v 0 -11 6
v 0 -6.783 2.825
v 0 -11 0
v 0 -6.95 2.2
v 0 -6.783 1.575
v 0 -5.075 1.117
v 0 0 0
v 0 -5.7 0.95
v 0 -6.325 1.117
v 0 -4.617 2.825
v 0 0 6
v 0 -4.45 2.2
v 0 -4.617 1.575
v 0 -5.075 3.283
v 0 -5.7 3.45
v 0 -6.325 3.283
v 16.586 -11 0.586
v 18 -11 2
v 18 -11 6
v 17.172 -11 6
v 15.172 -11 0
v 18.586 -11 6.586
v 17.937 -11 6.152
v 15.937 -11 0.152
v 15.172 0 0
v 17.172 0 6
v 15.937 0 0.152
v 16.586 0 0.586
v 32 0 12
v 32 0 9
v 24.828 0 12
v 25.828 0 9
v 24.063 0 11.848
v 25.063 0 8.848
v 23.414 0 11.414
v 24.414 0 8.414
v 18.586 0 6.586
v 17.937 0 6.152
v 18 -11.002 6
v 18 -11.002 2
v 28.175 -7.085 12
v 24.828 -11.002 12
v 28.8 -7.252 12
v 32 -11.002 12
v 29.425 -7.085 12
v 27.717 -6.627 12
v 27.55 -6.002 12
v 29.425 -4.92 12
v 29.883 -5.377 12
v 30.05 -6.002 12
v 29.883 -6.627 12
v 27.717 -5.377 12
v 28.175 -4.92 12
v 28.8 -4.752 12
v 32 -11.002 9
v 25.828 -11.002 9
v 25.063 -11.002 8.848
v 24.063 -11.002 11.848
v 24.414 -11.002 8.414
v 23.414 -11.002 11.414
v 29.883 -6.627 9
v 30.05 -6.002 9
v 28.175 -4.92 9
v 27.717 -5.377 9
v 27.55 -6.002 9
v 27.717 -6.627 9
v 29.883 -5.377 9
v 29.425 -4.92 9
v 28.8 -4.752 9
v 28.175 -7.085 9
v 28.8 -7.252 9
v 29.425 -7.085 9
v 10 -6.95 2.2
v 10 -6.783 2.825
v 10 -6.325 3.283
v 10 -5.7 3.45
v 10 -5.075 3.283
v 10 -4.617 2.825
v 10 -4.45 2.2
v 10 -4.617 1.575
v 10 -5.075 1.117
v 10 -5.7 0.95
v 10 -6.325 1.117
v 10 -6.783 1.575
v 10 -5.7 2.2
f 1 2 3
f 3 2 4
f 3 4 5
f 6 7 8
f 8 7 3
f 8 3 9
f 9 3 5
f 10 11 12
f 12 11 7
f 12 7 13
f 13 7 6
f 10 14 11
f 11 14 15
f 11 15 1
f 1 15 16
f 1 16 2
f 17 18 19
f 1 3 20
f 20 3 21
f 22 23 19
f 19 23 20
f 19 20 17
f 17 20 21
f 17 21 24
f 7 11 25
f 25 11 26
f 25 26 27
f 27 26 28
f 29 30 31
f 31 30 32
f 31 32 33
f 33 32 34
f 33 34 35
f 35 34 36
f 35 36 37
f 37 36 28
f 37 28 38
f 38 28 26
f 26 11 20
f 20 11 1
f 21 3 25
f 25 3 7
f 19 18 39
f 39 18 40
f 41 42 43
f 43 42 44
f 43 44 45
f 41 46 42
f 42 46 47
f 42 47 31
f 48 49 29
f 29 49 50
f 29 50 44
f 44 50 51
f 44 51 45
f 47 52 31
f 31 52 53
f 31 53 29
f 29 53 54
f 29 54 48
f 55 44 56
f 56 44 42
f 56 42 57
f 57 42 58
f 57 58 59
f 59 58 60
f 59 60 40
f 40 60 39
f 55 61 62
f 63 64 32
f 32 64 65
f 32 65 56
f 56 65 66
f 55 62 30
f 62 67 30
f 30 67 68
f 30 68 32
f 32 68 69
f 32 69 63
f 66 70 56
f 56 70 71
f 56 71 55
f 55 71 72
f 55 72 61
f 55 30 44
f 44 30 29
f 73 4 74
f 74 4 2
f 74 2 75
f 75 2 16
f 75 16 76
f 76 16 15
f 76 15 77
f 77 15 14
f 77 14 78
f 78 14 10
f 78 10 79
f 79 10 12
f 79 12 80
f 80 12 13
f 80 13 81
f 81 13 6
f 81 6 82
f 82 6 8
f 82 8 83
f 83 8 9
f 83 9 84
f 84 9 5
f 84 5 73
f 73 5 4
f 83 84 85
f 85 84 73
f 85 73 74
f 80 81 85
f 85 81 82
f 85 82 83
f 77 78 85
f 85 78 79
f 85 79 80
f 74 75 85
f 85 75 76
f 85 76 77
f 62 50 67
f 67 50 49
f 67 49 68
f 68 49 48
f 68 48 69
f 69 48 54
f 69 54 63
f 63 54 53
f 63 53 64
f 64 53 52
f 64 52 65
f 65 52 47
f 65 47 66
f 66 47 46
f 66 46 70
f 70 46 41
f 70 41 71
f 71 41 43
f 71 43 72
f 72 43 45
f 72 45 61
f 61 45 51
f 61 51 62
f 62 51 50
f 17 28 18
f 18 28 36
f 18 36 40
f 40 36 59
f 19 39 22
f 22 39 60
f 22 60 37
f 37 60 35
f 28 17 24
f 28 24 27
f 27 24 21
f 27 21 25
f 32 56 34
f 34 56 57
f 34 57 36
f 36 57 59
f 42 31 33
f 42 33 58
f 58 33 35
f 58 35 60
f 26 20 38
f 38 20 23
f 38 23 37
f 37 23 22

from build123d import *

# Parameters (mm, degrees)
CROQUIS1_W              = 18
CROQUIS1_H              = 11
SALIENTE_EXTRUIR1_DEPTH = 6
CROQUIS3_W              = 12
CROQUIS3_H              = 11.002490455
SALIENTE_EXTRUIR2_DEPTH = 8
CROQUIS4_W              = 3
CROQUIS4_H              = 11.002490455
SALIENTE_EXTRUIR3_DEPTH = 6
CROQUIS5_R              = 1.25
CORTAR_EXTRUIR1_DEPTH   = 10
CROQUIS6_R              = 1.25
CORTAR_EXTRUIR2_DEPTH   = 10
CHAFL_N1_SIZE           = 10
CHAFL_N2_SIZE           = 6
REDONDEO1_R             = 2


with BuildPart() as part:
    # Croquis1 → Saliente-Extruir1 (new body)
    with BuildSketch(Plane.XY):
        with Locations((9, -5.5)):
            Rectangle(CROQUIS1_W, CROQUIS1_H)
    extrude(amount=SALIENTE_EXTRUIR1_DEPTH)

    # Croquis3 → Saliente-Extruir2 (add)
    with BuildSketch(Plane(origin=(18, 0, 0), x_dir=(0, 0, -1), z_dir=(1, 0, 0))):
        with Locations((-6, -5.501245228)):
            Rectangle(CROQUIS3_W, CROQUIS3_H)
    extrude(amount=SALIENTE_EXTRUIR2_DEPTH)

    # Croquis4 → Saliente-Extruir3 (add)
    with BuildSketch(Plane(origin=(26, 0, 0), x_dir=(0, 0, -1), z_dir=(1, 0, 0))):
        with Locations((-10.5, -5.501245228)):
            Rectangle(CROQUIS4_W, CROQUIS4_H)
    extrude(amount=SALIENTE_EXTRUIR3_DEPTH)

    # Croquis5 → Cortar-Extruir1 (cut)
    with BuildSketch(Plane.ZY):
        with Locations(Location((2.2, -5.7, 0), (0, 0, 270))):
            Circle(CROQUIS5_R)
    extrude(amount=-CORTAR_EXTRUIR1_DEPTH, mode=Mode.SUBTRACT)

    # Croquis6 → Cortar-Extruir2 (cut)
    with BuildSketch(Plane.XY.offset(12)):
        with Locations((28.8, -6.002490455)):
            Circle(CROQUIS6_R)
    extrude(amount=-CORTAR_EXTRUIR2_DEPTH, mode=Mode.SUBTRACT)

    # Chaflán1
    # the kernel refuses this chamfer: 10 mm, written as the material it takes off along each edge
    with BuildSketch(Plane(origin=(26, -36.719320335, 0), x_dir=(0, 0, 1), z_dir=(0, 1, 0))) as chafl_n1_piece_1_section:
        Polygon((CHAFL_N1_SIZE, 0), (0, -CHAFL_N1_SIZE), (0, 0), align=None)
    chafl_n1_piece_1 = extrude(amount=62.436150214, mode=Mode.PRIVATE)
    chafl_n1_piece_1 = split(chafl_n1_piece_1, bisect_by=Plane(origin=(26, -36.719320335, 9), z_dir=(0, 0, -1)), keep=Keep.TOP, mode=Mode.PRIVATE)
    add(chafl_n1_piece_1, mode=Mode.SUBTRACT)

    # Chaflán2
    chafl_n2_edges = [part.edges().sort_by_distance(p)[0] for p in [
        (18, -5.501245227, 12),
    ]]
    chamfer(chafl_n2_edges, length=CHAFL_N2_SIZE)

    # Redondeo1
    redondeo1_edges = [part.edges().sort_by_distance(p)[0] for p in [
        (18, -5.5, 6),
        (16, -5.5, 0),
        (25, -5.501245227, 9),
        (24, -5.501245227, 12),
    ]]
    fillet(redondeo1_edges, radius=REDONDEO1_R)


solid = part.part
